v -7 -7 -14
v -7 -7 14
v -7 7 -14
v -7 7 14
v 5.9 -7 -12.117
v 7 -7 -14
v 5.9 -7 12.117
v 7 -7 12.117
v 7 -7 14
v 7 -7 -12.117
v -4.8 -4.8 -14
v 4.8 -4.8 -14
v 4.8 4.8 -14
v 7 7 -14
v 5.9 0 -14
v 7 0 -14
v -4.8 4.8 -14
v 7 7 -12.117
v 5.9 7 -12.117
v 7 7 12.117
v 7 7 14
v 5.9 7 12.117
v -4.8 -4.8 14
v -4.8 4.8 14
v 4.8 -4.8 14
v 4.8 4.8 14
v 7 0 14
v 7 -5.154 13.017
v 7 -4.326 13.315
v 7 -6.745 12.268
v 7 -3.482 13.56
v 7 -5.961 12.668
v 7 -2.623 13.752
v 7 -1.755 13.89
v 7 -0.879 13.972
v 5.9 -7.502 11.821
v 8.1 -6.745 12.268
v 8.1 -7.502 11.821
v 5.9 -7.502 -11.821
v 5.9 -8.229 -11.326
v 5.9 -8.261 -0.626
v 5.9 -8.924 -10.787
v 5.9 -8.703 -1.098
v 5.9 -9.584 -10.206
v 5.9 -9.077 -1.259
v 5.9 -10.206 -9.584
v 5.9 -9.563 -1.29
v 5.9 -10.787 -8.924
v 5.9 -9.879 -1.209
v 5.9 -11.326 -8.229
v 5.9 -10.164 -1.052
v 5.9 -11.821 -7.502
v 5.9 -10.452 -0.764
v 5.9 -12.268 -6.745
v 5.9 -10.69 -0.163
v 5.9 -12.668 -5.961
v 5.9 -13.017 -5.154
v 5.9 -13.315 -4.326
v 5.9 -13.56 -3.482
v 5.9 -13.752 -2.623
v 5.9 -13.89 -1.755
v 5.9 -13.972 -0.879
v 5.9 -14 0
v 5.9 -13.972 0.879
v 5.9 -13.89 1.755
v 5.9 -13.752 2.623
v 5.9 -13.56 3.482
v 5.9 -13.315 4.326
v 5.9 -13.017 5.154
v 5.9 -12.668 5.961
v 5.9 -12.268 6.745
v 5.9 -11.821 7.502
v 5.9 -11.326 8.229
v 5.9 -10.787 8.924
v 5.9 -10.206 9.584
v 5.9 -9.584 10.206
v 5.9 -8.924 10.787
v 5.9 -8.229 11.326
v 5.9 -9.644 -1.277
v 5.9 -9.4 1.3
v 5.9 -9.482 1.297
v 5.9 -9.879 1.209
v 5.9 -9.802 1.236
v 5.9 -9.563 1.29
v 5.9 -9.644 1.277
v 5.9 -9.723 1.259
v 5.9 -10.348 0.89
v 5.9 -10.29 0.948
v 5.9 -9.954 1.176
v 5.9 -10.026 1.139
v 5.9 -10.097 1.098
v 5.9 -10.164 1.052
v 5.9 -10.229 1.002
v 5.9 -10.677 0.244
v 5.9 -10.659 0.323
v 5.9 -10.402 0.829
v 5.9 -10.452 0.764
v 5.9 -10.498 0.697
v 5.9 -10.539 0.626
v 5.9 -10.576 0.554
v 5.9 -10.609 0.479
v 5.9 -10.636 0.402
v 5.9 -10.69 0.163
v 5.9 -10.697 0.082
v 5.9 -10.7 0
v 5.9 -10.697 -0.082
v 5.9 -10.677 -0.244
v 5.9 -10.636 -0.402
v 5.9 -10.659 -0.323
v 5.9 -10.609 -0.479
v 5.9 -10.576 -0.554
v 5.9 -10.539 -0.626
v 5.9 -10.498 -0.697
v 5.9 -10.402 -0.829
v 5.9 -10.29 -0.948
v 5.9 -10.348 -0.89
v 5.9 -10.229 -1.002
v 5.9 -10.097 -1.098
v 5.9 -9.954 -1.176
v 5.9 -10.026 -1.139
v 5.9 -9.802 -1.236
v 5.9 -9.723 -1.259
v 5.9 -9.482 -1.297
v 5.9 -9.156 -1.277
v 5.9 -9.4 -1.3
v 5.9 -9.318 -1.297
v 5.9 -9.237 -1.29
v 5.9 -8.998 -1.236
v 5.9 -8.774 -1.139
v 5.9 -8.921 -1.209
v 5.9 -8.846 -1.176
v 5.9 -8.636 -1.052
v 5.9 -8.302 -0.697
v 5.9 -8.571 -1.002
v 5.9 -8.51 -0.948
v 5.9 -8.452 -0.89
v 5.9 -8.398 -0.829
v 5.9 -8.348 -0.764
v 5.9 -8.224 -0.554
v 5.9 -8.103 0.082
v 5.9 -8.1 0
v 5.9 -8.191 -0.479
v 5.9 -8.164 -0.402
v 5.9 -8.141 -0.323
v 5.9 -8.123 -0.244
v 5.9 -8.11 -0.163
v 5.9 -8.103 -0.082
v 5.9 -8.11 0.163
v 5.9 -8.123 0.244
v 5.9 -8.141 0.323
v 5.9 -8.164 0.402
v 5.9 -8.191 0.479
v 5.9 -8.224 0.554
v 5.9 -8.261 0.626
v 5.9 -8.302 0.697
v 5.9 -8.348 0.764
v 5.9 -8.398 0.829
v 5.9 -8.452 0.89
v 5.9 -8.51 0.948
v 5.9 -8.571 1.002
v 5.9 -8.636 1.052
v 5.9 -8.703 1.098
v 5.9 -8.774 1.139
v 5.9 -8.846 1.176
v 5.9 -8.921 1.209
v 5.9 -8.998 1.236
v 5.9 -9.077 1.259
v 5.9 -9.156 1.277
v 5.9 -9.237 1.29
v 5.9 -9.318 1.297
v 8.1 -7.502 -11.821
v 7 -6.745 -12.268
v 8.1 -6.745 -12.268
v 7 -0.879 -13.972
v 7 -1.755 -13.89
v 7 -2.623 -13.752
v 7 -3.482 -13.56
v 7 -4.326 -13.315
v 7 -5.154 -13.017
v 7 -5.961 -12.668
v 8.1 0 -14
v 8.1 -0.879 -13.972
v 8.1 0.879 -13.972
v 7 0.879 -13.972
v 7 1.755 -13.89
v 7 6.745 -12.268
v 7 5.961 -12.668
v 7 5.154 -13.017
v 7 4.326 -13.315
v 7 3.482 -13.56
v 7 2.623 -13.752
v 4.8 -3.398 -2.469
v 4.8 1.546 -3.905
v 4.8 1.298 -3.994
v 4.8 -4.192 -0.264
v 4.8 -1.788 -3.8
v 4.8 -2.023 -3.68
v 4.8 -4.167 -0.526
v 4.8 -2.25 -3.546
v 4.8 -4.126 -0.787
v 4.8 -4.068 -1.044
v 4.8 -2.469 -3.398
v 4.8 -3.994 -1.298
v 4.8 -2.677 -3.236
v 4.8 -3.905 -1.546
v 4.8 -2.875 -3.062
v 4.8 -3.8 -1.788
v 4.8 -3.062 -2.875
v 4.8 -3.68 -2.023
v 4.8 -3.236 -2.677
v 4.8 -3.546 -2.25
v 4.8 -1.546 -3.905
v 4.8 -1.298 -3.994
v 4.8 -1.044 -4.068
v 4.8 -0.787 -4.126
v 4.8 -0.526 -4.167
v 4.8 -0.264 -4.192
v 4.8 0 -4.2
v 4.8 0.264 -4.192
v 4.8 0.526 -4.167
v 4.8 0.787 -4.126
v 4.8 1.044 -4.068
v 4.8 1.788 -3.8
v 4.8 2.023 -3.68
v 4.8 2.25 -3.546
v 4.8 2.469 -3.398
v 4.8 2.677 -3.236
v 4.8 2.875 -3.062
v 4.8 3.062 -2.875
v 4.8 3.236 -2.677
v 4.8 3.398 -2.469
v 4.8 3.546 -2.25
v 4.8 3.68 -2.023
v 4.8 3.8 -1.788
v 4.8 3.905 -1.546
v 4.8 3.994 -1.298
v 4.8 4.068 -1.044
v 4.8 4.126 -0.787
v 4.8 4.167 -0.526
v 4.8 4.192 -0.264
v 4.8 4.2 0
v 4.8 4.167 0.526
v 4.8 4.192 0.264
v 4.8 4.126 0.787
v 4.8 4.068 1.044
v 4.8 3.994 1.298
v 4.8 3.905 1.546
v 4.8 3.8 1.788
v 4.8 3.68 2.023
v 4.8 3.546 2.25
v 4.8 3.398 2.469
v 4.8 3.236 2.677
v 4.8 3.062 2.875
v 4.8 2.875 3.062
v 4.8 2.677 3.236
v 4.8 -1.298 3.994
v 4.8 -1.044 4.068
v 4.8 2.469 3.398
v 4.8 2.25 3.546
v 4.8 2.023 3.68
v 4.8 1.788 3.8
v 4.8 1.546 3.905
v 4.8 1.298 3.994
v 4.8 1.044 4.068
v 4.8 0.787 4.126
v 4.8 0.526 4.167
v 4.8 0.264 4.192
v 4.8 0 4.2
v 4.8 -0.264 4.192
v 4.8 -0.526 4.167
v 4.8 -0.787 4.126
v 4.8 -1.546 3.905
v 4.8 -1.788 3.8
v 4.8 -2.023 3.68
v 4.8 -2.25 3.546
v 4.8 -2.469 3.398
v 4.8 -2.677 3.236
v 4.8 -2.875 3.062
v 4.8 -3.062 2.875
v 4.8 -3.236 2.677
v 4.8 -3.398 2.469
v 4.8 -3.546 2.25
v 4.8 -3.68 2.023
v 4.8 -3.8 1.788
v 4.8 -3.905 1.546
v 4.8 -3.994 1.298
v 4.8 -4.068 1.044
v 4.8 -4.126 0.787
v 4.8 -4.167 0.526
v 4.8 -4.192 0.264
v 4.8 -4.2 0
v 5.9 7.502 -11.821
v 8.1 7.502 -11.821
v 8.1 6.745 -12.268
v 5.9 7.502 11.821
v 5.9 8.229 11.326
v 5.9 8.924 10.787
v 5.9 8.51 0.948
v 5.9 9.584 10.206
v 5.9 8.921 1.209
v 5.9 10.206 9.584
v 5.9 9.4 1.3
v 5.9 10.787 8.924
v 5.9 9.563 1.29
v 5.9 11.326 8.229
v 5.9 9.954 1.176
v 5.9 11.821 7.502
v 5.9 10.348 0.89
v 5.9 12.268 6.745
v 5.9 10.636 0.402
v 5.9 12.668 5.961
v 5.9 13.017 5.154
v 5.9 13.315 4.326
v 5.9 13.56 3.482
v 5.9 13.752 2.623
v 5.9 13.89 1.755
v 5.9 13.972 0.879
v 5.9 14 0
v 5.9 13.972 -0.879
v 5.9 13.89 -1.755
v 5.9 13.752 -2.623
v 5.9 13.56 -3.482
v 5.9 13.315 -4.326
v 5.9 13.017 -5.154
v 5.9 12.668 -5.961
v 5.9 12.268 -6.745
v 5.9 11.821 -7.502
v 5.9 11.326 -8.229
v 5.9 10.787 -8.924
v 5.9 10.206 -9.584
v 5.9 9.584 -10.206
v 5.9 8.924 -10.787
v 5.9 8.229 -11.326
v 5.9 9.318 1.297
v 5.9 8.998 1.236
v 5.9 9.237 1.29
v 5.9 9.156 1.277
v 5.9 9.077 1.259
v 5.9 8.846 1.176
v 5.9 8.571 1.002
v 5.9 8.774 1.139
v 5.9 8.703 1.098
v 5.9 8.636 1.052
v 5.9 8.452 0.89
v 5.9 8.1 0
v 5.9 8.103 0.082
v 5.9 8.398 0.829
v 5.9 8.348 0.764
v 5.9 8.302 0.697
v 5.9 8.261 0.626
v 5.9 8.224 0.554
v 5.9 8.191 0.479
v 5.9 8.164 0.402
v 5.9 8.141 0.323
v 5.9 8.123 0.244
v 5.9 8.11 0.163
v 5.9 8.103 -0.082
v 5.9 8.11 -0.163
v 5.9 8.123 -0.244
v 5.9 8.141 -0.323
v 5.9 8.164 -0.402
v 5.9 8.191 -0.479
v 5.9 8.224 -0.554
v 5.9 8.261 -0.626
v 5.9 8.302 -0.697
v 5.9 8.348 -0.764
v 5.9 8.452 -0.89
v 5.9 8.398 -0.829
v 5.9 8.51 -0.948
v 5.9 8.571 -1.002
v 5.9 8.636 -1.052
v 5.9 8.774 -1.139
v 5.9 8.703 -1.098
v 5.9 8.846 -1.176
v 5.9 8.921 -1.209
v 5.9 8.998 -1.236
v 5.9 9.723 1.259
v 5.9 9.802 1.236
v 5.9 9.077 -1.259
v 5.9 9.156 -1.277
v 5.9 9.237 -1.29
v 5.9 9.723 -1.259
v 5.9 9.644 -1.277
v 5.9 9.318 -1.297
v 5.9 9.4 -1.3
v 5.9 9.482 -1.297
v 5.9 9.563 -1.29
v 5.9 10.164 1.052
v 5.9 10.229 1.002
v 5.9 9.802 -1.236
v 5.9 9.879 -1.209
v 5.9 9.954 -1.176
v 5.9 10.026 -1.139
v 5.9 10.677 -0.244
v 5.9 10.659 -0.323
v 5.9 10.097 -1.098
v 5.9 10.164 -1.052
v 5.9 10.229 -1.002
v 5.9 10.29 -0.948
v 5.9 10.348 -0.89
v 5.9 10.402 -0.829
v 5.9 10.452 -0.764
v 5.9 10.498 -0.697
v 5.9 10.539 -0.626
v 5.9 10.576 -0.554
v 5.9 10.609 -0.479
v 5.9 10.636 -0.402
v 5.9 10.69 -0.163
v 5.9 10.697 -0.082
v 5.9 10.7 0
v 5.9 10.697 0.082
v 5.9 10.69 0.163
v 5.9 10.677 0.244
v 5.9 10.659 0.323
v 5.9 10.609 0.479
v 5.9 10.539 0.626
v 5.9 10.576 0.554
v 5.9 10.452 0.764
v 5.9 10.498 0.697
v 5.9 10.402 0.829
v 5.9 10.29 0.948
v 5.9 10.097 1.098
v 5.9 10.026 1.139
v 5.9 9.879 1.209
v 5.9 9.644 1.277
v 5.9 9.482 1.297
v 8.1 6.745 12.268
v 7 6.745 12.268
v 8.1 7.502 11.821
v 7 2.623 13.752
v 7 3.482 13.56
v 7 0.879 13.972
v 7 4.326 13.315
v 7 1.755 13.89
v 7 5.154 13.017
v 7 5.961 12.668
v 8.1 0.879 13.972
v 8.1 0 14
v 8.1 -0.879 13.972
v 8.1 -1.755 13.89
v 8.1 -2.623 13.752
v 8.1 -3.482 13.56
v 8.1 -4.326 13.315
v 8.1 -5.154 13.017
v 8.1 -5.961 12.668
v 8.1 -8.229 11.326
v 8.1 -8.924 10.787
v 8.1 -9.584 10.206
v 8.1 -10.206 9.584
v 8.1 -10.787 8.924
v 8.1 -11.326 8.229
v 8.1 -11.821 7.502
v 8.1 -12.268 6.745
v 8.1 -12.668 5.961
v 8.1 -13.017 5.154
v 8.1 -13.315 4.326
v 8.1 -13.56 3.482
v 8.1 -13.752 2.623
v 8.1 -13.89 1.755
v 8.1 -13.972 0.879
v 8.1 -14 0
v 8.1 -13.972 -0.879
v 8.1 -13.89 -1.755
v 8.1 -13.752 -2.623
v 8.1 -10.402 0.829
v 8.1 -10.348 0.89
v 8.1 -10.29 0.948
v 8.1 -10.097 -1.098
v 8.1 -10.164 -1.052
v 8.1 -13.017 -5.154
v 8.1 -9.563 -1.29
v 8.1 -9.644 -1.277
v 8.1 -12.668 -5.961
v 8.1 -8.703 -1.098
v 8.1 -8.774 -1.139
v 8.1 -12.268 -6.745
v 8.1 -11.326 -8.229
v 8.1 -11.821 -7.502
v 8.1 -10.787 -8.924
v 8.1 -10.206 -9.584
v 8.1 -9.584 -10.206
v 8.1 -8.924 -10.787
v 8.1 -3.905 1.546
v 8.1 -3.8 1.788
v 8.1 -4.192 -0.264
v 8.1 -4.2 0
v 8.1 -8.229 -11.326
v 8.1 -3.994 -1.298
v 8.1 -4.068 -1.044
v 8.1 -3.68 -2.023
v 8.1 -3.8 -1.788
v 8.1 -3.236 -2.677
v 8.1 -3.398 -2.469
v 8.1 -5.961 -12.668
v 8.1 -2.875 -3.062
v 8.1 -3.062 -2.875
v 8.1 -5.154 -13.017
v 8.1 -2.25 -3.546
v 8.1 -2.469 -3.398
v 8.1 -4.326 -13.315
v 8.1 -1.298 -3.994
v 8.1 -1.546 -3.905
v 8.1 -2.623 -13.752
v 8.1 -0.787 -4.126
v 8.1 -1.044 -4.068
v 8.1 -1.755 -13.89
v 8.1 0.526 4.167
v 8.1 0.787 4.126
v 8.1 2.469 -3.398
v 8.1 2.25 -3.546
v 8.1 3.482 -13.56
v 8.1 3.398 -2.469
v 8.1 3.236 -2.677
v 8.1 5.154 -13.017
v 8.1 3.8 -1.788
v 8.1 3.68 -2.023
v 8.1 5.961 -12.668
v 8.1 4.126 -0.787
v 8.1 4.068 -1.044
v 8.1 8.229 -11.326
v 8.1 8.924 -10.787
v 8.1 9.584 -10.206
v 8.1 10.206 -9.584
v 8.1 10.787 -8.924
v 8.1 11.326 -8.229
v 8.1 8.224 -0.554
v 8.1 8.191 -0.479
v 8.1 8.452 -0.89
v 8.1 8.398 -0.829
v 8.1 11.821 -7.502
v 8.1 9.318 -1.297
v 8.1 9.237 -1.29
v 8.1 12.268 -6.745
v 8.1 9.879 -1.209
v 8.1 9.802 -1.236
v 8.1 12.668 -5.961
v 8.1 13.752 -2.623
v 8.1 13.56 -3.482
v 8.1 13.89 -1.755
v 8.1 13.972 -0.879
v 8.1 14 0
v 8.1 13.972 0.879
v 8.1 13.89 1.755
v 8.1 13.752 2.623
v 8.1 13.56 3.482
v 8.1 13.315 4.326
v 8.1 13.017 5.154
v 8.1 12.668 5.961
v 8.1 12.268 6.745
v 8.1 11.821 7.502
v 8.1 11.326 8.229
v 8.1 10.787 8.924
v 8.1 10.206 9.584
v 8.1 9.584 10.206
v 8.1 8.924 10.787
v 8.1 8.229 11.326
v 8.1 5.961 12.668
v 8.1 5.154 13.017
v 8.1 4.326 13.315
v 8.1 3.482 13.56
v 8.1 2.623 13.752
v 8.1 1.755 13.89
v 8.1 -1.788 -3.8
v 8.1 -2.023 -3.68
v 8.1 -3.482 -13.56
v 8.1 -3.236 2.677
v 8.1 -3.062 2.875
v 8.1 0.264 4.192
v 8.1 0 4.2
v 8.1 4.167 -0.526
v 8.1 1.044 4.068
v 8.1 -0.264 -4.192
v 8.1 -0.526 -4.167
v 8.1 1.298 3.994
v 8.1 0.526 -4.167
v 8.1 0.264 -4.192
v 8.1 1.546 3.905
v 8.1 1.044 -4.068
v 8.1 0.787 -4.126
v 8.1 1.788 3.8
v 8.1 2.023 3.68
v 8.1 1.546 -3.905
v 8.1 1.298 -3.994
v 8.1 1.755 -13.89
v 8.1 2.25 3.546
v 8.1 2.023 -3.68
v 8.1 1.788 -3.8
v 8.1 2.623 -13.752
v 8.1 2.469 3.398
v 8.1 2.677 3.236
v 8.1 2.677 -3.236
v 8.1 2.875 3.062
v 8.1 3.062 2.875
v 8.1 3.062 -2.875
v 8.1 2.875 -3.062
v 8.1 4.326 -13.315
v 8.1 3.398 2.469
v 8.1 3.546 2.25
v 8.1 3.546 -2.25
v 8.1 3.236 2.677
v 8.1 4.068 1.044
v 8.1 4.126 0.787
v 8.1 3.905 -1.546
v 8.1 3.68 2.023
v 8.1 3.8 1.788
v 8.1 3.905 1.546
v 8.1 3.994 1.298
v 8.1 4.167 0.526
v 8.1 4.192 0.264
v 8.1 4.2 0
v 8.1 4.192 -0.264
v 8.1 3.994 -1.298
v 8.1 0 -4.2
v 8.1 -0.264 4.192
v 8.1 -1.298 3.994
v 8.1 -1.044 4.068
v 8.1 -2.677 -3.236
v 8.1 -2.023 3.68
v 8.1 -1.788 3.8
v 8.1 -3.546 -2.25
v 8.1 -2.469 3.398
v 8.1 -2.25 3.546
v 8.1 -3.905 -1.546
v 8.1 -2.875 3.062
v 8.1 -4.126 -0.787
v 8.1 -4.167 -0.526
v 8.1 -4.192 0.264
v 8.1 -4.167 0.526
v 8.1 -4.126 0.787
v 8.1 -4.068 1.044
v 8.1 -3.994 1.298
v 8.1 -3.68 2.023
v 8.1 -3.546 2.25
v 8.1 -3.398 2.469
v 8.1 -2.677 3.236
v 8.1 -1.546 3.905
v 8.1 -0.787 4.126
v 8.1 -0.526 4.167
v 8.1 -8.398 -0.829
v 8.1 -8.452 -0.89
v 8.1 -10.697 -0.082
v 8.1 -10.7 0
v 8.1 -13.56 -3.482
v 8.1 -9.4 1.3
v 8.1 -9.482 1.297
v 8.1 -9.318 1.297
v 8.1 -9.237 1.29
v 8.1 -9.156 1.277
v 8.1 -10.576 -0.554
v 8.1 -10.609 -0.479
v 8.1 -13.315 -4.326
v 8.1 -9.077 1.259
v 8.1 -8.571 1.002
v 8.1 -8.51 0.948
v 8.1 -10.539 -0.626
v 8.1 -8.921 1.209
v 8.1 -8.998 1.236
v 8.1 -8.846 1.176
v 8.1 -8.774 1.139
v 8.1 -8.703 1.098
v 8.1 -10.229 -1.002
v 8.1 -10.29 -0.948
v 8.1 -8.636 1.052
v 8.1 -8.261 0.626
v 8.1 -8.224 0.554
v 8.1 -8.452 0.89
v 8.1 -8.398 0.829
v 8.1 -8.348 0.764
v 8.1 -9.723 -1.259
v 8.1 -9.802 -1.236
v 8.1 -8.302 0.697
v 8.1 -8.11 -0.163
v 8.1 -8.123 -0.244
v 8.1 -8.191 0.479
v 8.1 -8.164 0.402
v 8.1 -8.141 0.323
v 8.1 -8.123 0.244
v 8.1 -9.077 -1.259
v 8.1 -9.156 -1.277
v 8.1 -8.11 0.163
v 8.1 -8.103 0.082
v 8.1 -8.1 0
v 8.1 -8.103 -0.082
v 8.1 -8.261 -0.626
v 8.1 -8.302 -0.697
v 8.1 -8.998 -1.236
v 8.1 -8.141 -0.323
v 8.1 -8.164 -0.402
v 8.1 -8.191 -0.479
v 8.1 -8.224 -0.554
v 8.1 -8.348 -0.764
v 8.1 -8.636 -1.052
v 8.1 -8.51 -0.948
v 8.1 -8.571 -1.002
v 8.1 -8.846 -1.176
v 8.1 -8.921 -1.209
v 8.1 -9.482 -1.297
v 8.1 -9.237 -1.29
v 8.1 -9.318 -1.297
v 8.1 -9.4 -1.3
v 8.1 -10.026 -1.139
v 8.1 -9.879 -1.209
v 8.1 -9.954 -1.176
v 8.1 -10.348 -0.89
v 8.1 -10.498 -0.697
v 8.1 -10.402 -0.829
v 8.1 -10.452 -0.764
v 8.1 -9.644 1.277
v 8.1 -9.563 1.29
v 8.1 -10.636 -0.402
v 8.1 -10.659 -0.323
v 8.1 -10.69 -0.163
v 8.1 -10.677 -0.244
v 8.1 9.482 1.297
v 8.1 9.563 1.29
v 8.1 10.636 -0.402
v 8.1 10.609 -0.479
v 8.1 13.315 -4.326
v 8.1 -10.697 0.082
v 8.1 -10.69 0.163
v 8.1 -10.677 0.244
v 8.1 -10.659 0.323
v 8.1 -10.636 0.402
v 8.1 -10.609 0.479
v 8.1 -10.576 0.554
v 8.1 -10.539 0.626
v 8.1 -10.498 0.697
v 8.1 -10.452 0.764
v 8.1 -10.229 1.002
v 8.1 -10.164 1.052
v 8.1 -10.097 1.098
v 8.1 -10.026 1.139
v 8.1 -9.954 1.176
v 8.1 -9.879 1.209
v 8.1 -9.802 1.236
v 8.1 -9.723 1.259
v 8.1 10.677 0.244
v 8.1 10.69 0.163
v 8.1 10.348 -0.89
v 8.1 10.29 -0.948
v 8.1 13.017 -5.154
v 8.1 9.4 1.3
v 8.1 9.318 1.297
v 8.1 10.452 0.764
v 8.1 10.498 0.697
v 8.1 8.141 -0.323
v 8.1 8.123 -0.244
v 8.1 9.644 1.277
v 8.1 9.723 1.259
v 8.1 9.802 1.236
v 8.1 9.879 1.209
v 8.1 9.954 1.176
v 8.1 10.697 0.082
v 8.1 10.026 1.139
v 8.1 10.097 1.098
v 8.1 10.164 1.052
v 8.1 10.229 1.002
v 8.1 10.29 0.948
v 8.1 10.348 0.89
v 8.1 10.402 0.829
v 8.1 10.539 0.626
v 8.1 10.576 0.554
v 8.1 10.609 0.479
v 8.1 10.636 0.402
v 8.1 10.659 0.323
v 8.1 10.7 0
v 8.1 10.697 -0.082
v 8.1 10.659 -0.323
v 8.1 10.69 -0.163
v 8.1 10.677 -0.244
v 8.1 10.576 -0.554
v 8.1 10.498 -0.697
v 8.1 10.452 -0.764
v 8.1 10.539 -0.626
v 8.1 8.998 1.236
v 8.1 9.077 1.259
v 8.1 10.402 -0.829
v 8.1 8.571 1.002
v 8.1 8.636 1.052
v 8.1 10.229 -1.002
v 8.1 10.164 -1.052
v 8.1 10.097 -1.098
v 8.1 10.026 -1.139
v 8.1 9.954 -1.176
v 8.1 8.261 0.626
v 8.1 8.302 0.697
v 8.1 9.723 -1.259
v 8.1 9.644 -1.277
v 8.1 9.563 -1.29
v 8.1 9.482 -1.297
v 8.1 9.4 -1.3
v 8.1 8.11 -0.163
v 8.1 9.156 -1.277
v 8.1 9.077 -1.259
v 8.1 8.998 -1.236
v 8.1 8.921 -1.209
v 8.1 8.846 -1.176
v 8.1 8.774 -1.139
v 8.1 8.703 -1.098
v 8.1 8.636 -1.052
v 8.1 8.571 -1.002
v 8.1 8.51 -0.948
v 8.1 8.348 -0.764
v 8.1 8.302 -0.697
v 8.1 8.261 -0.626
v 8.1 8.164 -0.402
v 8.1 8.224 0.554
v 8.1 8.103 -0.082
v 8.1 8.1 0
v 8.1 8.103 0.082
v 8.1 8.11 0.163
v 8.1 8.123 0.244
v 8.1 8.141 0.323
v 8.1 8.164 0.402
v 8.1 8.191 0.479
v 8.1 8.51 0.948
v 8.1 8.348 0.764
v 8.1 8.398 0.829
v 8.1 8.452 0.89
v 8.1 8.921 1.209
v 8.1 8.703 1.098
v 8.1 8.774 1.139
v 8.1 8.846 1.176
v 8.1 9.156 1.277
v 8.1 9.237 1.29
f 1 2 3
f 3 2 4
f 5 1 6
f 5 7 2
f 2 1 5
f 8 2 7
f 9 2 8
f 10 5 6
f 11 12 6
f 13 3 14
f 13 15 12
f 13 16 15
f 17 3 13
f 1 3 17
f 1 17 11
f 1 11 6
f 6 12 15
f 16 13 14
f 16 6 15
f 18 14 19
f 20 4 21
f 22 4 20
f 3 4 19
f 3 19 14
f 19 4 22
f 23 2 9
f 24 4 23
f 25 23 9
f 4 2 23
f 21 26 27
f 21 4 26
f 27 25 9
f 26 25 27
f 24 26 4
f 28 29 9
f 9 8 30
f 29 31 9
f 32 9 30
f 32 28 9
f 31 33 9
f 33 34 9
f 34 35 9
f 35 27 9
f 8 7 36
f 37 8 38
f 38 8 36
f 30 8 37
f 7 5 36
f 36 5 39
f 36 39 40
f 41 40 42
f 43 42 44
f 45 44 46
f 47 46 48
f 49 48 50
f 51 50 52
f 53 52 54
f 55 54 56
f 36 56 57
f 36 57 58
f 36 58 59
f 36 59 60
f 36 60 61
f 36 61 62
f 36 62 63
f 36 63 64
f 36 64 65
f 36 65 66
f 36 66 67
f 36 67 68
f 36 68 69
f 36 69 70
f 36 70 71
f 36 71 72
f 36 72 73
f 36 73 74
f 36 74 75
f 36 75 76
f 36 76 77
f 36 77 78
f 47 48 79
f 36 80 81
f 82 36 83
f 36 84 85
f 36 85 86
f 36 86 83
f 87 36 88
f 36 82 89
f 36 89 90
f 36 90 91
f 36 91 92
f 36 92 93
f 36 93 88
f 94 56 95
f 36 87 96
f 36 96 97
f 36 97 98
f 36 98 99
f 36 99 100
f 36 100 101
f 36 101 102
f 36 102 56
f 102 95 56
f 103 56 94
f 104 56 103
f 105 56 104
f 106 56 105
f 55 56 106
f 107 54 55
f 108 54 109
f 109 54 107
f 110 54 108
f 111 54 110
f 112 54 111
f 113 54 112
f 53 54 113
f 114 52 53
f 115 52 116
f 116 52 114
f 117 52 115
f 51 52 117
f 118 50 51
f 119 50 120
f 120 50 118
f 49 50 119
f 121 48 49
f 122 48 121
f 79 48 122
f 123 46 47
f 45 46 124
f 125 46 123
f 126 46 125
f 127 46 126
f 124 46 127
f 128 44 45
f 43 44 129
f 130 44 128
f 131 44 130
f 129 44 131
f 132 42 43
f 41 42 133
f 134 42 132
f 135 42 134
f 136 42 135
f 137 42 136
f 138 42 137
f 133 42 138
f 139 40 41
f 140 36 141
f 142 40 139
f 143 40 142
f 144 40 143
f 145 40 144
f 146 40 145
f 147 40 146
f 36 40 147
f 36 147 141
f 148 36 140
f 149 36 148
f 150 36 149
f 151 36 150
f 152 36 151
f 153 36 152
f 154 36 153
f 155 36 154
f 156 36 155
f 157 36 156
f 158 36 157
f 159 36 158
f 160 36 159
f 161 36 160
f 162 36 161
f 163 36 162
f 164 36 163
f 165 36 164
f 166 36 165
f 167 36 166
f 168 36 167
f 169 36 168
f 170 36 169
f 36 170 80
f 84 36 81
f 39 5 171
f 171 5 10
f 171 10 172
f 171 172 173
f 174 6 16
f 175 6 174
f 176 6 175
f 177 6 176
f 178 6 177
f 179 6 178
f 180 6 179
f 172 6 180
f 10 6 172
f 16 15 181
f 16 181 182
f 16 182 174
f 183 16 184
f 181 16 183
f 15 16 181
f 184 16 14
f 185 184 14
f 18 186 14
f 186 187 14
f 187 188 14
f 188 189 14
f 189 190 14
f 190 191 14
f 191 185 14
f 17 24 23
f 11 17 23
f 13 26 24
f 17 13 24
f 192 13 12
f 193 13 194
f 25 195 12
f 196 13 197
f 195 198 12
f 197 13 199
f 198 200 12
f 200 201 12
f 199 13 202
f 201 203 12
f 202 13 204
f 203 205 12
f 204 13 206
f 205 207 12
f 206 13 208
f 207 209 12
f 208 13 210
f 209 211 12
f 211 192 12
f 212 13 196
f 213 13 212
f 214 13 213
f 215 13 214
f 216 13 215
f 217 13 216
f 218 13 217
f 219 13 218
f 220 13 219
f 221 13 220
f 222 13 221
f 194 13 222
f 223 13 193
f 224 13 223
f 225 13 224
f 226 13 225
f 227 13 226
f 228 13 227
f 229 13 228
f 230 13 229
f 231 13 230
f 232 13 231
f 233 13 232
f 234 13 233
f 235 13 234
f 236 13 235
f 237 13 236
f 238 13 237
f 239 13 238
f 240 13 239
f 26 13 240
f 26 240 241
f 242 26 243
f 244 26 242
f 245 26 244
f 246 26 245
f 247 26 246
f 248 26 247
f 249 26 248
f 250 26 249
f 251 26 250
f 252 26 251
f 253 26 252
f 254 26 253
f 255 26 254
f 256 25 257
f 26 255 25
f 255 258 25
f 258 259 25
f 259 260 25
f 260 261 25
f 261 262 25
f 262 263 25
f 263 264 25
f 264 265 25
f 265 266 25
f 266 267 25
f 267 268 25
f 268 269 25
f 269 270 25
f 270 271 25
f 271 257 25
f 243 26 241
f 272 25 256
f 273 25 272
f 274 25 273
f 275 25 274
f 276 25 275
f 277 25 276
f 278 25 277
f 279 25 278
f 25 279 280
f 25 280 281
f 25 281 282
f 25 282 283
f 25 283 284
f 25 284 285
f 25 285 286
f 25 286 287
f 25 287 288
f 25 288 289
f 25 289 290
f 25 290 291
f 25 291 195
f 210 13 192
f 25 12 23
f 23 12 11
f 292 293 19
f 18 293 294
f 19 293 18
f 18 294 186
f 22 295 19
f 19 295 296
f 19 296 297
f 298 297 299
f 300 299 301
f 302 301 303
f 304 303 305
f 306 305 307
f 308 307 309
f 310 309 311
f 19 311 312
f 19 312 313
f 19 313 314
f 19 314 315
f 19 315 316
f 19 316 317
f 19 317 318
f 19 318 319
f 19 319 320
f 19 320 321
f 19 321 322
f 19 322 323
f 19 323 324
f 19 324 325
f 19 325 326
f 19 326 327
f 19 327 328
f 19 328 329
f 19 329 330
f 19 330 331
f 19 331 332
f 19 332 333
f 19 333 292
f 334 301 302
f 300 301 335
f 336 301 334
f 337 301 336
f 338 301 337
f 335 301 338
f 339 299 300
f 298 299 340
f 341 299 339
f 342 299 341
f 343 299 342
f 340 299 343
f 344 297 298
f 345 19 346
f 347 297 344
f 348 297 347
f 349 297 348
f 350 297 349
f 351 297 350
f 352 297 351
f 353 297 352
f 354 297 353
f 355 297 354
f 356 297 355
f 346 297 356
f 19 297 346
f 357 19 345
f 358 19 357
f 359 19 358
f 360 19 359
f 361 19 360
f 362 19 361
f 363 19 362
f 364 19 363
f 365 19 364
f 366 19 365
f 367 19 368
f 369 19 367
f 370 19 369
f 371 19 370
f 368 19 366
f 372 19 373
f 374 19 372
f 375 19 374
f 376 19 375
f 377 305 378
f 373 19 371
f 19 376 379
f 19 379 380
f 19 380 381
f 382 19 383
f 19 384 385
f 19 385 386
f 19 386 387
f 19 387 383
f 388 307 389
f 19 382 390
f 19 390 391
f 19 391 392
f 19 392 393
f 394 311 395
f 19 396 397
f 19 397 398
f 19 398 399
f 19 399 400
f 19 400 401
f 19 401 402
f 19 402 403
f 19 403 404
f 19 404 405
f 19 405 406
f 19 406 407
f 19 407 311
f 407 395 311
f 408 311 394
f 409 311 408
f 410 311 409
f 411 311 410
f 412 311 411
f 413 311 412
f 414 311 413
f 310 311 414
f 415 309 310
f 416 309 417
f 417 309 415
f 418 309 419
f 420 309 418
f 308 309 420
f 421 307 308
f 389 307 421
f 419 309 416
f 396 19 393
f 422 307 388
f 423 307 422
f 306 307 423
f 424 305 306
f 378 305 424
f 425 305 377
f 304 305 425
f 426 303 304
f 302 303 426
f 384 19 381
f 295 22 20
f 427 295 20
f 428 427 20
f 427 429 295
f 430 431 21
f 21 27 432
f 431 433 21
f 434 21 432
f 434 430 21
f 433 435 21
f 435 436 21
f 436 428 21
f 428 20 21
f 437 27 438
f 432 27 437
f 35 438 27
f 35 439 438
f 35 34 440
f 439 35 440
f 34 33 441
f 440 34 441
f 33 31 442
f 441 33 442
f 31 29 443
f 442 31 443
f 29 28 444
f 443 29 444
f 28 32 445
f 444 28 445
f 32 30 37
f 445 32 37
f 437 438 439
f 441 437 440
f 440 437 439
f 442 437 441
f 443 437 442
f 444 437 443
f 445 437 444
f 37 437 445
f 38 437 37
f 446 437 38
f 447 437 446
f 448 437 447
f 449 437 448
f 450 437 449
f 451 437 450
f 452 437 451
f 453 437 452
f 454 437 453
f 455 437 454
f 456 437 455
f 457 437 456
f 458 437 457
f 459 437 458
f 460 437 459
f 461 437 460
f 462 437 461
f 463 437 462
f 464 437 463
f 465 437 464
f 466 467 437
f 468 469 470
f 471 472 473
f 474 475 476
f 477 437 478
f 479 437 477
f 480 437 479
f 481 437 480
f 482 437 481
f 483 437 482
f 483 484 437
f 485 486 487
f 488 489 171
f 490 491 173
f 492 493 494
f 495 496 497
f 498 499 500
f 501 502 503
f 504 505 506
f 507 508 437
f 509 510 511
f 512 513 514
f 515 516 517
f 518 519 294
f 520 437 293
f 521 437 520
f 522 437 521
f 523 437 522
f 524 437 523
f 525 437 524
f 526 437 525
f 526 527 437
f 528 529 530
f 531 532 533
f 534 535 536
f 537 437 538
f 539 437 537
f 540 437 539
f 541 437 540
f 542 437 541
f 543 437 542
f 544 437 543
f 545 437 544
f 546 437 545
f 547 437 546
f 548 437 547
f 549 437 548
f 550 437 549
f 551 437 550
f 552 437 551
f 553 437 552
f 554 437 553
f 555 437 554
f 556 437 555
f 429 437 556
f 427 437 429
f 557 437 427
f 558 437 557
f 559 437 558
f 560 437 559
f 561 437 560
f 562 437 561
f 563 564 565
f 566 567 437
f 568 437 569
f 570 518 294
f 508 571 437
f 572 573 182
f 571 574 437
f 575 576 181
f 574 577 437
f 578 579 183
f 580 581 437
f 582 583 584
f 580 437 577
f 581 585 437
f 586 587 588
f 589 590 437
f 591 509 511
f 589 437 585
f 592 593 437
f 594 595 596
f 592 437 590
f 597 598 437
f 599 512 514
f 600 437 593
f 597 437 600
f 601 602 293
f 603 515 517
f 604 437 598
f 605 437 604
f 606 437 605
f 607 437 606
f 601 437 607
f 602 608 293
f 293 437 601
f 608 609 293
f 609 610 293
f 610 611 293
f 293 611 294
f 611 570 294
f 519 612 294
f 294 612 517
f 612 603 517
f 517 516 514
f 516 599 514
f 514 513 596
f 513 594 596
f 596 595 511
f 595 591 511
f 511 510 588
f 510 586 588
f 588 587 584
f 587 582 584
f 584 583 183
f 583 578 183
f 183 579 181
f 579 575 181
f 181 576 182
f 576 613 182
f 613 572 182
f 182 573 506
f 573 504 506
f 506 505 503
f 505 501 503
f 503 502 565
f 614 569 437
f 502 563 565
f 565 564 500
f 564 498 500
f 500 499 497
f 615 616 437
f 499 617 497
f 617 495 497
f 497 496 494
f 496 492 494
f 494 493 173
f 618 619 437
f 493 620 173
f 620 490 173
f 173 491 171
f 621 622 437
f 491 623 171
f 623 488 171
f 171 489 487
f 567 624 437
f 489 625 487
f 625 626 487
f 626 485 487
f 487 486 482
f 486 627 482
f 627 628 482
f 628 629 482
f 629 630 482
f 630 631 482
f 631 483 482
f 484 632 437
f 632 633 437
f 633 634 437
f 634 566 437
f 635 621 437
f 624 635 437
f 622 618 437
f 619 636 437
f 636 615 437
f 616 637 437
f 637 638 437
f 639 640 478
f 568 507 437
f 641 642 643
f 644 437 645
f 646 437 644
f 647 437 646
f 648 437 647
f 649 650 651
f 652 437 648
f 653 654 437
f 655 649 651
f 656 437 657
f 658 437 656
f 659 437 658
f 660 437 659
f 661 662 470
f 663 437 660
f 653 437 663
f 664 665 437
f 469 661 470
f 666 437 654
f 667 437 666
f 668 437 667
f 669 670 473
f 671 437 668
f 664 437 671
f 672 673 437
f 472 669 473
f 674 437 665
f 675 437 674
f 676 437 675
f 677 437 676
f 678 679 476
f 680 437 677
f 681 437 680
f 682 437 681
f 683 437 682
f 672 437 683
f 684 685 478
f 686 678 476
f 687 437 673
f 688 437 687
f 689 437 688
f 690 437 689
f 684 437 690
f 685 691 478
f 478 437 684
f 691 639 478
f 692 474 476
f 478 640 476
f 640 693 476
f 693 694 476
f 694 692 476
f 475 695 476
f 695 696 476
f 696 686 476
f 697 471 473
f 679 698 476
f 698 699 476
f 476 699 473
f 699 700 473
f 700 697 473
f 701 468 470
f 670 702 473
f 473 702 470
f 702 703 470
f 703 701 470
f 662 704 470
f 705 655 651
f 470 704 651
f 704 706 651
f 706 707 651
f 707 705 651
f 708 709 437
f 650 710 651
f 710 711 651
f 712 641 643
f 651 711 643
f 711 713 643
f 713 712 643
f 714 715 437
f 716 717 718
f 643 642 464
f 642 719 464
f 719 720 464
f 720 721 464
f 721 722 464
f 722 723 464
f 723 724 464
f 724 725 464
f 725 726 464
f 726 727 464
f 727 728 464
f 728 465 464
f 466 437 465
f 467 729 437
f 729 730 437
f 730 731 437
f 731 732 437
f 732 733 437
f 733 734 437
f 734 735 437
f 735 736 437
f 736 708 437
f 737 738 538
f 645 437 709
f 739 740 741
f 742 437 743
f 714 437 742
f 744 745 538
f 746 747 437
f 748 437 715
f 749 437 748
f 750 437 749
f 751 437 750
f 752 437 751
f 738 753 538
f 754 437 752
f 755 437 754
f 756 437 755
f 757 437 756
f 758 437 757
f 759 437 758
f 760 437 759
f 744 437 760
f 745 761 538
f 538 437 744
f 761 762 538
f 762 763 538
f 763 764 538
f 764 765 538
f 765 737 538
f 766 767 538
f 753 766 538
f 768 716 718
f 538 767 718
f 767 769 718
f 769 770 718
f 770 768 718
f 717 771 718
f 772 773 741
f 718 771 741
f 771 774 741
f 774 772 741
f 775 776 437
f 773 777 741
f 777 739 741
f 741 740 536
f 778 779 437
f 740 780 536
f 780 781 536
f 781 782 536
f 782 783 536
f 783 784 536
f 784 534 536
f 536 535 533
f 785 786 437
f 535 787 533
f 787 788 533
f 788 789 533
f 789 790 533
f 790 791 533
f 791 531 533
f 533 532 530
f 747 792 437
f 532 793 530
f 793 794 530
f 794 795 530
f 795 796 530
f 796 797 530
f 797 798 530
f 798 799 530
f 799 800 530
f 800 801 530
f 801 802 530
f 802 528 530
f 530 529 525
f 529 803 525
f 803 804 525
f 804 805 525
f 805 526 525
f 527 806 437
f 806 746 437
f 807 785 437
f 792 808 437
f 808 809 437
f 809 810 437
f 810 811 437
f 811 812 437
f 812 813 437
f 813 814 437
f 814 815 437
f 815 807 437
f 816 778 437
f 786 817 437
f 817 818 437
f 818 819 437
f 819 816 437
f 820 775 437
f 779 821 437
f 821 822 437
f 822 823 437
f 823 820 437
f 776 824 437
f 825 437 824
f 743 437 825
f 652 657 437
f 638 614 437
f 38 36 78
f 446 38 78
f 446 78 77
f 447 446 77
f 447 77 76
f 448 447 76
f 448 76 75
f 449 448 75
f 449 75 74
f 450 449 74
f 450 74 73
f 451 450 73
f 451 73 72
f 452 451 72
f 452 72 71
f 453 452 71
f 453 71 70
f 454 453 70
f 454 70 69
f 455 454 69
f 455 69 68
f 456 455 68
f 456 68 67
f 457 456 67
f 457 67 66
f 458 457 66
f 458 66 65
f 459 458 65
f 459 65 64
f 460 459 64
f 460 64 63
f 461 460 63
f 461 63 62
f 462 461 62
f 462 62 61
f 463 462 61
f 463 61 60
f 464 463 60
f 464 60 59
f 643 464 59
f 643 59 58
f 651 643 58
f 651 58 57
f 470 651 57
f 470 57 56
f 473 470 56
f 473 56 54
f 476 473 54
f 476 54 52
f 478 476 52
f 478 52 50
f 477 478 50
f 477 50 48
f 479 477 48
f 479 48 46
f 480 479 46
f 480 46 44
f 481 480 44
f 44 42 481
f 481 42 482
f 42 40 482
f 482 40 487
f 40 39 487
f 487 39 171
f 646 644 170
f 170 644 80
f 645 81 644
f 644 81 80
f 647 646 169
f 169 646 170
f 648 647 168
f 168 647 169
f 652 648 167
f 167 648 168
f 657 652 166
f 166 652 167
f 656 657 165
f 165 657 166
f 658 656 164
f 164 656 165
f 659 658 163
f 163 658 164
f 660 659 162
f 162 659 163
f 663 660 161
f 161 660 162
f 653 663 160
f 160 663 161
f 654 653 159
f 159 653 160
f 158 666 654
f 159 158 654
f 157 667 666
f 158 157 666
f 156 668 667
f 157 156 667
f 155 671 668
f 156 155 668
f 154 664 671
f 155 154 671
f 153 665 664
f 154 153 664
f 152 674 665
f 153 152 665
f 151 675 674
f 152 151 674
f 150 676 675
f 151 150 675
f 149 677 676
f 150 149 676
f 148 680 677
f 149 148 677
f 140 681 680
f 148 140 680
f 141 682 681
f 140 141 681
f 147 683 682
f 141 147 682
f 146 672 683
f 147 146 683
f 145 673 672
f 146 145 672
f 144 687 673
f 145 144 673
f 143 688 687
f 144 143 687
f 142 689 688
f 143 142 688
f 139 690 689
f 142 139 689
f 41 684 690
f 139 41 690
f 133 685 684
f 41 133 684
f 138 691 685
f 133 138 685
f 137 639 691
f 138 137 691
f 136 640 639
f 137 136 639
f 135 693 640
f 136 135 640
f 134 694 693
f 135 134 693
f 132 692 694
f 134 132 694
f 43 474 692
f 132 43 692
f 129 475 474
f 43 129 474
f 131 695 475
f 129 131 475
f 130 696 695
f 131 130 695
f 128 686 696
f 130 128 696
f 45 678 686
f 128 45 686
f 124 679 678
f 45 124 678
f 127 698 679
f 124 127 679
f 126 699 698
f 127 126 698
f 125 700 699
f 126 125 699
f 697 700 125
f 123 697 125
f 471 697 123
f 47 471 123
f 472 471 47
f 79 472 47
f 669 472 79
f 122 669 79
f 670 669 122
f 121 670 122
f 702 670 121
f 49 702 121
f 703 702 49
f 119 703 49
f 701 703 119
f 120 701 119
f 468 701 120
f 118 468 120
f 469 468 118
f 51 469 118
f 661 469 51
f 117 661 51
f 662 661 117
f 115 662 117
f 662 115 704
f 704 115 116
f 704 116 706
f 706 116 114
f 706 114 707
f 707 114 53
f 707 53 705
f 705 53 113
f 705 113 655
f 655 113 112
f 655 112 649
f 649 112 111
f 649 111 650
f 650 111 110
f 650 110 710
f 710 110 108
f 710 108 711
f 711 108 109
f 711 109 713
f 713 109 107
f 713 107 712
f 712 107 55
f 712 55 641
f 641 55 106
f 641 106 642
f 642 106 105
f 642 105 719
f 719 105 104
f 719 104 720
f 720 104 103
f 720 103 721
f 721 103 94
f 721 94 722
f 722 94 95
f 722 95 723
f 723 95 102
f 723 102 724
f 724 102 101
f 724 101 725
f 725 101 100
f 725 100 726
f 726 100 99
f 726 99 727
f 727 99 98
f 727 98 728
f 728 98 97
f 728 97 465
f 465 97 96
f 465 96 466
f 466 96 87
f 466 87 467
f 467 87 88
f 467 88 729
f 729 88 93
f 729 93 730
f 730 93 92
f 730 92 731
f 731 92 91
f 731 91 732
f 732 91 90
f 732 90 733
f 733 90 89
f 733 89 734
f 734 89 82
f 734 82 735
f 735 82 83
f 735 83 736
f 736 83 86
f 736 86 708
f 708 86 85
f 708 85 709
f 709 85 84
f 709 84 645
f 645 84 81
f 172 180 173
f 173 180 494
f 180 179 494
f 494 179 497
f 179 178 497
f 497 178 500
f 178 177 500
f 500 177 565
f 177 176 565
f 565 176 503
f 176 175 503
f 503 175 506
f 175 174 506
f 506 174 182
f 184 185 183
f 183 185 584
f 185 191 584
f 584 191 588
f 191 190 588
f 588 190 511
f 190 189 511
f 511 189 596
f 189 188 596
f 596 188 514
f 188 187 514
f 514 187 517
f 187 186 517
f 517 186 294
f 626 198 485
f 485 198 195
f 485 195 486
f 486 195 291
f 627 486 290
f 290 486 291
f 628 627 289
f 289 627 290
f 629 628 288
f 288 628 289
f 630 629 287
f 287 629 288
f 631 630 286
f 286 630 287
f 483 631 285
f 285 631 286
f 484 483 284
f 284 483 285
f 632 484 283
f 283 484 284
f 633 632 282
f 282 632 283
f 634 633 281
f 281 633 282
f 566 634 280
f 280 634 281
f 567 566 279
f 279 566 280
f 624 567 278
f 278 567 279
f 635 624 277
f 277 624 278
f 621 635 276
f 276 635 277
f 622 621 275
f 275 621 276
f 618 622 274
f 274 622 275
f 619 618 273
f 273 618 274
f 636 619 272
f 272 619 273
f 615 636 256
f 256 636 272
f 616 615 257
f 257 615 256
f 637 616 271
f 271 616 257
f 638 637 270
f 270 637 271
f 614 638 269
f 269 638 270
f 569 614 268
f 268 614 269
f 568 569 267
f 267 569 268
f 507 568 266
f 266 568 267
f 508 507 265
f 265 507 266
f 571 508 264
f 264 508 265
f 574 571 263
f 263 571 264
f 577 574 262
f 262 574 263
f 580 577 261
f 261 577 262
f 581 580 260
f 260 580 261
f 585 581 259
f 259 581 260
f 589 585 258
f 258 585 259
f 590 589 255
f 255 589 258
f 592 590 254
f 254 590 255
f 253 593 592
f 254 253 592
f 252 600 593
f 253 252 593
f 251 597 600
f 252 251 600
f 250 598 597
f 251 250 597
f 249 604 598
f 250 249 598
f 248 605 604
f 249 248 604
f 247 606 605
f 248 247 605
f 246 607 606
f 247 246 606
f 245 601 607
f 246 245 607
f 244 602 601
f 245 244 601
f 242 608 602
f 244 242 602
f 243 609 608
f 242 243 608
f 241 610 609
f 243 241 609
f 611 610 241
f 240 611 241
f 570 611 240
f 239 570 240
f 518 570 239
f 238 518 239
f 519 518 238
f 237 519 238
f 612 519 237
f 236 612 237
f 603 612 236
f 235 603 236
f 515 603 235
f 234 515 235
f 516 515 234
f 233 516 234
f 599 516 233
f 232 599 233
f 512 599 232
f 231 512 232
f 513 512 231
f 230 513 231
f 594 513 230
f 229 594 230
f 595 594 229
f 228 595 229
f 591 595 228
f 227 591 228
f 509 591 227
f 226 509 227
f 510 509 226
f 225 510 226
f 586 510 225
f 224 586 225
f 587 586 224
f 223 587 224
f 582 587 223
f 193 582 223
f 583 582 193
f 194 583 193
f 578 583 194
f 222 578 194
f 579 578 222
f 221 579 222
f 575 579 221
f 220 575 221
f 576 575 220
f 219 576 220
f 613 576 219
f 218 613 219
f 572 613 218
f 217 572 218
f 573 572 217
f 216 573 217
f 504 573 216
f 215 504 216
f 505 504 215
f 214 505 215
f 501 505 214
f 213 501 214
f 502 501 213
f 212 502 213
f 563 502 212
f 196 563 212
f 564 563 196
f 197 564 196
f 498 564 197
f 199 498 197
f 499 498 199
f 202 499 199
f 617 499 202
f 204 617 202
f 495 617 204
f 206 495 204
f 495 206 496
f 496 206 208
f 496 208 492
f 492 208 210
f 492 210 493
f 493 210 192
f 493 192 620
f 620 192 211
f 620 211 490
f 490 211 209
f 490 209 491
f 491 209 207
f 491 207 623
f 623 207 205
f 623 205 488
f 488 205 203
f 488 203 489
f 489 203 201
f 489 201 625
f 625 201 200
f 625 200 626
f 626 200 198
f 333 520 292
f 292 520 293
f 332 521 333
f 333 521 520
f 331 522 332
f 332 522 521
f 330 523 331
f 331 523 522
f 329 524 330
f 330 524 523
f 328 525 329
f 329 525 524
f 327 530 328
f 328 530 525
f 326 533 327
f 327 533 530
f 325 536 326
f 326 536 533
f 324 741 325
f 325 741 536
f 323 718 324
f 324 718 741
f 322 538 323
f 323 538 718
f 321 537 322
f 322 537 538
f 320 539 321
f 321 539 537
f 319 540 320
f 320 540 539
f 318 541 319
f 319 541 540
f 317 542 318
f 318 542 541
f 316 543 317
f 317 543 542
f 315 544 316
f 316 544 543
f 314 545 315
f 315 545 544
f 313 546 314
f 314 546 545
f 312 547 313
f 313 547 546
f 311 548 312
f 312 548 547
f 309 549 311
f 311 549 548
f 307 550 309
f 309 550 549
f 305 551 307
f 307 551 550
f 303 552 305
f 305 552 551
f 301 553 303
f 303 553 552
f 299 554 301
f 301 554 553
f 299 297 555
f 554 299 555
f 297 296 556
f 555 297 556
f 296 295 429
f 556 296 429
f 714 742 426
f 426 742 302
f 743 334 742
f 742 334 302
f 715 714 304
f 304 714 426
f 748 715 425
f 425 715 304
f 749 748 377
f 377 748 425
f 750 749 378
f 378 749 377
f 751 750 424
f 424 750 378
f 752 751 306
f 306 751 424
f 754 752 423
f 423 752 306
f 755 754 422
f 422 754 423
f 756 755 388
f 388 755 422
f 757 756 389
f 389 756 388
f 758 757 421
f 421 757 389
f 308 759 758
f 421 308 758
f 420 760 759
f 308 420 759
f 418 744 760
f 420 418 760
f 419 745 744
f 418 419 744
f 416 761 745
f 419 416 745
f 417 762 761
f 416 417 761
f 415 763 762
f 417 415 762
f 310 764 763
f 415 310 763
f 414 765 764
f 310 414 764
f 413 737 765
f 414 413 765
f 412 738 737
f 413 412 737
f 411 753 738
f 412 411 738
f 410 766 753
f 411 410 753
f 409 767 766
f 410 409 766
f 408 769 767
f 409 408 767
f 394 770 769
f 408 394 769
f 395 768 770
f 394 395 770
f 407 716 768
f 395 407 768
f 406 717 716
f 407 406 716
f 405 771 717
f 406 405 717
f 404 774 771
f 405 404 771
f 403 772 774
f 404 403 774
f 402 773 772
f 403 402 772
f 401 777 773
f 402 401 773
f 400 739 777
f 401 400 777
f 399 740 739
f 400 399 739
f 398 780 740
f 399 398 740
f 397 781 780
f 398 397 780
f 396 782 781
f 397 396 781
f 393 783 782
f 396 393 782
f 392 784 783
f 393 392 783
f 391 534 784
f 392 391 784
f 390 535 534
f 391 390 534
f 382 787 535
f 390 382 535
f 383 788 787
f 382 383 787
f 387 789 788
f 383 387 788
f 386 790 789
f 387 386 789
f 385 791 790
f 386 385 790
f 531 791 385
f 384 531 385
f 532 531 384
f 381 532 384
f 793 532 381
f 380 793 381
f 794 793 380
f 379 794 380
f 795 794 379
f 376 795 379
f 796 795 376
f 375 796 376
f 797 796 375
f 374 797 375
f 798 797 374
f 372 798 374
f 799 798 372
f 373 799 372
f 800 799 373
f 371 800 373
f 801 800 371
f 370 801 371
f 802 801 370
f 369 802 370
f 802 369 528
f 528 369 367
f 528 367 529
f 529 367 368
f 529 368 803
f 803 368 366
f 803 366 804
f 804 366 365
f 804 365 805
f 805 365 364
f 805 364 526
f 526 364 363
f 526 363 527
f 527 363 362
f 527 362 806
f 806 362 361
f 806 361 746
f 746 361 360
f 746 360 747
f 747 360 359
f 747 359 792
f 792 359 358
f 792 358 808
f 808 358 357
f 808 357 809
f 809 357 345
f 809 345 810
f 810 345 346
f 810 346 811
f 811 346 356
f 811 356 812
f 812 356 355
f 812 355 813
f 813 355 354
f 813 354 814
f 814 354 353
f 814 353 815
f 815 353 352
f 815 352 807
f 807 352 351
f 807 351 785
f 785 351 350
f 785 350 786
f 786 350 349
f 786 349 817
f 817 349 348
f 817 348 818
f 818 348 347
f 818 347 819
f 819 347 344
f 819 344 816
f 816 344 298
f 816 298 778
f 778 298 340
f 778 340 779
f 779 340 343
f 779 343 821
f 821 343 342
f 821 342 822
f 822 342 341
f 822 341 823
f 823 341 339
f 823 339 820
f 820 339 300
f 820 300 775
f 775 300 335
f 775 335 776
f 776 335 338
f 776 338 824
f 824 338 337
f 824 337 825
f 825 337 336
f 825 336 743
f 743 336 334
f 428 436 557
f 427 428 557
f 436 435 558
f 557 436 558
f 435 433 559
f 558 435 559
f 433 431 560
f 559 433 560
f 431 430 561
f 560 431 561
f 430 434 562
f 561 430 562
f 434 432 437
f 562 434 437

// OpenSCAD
height = 28;
od = 14;
id = 9.6;
screwd = 1.3;
screwo = 9.4;

difference(){
	cube(size=[od,od,height],center=true);
	cube(size=[id,id,height],center=true);
	translate([od/2,0,0]){
		rotate([0,90,0]){
			cylinder( h=(od), r=4.2, center=true, $fn=100 );
		}
	}
}

translate([od/2,0,0]){
	rotate([0,90,0]){
		difference(){
			cylinder( h=(od-id)/2, r=height/2, center=true, $fn=100 );
			cylinder( h=(od-id)/2, r=4.2, center=true, $fn=100 );
			translate([0,screwo,0]){
				cylinder( h=(od-id)/2, r=screwd, center=true, $fn=100 );
			}
			translate([0,-screwo,0]){
				cylinder( h=(od-id)/2, r=screwd, center=true, $fn=100 );
			}
		}
	}
}
